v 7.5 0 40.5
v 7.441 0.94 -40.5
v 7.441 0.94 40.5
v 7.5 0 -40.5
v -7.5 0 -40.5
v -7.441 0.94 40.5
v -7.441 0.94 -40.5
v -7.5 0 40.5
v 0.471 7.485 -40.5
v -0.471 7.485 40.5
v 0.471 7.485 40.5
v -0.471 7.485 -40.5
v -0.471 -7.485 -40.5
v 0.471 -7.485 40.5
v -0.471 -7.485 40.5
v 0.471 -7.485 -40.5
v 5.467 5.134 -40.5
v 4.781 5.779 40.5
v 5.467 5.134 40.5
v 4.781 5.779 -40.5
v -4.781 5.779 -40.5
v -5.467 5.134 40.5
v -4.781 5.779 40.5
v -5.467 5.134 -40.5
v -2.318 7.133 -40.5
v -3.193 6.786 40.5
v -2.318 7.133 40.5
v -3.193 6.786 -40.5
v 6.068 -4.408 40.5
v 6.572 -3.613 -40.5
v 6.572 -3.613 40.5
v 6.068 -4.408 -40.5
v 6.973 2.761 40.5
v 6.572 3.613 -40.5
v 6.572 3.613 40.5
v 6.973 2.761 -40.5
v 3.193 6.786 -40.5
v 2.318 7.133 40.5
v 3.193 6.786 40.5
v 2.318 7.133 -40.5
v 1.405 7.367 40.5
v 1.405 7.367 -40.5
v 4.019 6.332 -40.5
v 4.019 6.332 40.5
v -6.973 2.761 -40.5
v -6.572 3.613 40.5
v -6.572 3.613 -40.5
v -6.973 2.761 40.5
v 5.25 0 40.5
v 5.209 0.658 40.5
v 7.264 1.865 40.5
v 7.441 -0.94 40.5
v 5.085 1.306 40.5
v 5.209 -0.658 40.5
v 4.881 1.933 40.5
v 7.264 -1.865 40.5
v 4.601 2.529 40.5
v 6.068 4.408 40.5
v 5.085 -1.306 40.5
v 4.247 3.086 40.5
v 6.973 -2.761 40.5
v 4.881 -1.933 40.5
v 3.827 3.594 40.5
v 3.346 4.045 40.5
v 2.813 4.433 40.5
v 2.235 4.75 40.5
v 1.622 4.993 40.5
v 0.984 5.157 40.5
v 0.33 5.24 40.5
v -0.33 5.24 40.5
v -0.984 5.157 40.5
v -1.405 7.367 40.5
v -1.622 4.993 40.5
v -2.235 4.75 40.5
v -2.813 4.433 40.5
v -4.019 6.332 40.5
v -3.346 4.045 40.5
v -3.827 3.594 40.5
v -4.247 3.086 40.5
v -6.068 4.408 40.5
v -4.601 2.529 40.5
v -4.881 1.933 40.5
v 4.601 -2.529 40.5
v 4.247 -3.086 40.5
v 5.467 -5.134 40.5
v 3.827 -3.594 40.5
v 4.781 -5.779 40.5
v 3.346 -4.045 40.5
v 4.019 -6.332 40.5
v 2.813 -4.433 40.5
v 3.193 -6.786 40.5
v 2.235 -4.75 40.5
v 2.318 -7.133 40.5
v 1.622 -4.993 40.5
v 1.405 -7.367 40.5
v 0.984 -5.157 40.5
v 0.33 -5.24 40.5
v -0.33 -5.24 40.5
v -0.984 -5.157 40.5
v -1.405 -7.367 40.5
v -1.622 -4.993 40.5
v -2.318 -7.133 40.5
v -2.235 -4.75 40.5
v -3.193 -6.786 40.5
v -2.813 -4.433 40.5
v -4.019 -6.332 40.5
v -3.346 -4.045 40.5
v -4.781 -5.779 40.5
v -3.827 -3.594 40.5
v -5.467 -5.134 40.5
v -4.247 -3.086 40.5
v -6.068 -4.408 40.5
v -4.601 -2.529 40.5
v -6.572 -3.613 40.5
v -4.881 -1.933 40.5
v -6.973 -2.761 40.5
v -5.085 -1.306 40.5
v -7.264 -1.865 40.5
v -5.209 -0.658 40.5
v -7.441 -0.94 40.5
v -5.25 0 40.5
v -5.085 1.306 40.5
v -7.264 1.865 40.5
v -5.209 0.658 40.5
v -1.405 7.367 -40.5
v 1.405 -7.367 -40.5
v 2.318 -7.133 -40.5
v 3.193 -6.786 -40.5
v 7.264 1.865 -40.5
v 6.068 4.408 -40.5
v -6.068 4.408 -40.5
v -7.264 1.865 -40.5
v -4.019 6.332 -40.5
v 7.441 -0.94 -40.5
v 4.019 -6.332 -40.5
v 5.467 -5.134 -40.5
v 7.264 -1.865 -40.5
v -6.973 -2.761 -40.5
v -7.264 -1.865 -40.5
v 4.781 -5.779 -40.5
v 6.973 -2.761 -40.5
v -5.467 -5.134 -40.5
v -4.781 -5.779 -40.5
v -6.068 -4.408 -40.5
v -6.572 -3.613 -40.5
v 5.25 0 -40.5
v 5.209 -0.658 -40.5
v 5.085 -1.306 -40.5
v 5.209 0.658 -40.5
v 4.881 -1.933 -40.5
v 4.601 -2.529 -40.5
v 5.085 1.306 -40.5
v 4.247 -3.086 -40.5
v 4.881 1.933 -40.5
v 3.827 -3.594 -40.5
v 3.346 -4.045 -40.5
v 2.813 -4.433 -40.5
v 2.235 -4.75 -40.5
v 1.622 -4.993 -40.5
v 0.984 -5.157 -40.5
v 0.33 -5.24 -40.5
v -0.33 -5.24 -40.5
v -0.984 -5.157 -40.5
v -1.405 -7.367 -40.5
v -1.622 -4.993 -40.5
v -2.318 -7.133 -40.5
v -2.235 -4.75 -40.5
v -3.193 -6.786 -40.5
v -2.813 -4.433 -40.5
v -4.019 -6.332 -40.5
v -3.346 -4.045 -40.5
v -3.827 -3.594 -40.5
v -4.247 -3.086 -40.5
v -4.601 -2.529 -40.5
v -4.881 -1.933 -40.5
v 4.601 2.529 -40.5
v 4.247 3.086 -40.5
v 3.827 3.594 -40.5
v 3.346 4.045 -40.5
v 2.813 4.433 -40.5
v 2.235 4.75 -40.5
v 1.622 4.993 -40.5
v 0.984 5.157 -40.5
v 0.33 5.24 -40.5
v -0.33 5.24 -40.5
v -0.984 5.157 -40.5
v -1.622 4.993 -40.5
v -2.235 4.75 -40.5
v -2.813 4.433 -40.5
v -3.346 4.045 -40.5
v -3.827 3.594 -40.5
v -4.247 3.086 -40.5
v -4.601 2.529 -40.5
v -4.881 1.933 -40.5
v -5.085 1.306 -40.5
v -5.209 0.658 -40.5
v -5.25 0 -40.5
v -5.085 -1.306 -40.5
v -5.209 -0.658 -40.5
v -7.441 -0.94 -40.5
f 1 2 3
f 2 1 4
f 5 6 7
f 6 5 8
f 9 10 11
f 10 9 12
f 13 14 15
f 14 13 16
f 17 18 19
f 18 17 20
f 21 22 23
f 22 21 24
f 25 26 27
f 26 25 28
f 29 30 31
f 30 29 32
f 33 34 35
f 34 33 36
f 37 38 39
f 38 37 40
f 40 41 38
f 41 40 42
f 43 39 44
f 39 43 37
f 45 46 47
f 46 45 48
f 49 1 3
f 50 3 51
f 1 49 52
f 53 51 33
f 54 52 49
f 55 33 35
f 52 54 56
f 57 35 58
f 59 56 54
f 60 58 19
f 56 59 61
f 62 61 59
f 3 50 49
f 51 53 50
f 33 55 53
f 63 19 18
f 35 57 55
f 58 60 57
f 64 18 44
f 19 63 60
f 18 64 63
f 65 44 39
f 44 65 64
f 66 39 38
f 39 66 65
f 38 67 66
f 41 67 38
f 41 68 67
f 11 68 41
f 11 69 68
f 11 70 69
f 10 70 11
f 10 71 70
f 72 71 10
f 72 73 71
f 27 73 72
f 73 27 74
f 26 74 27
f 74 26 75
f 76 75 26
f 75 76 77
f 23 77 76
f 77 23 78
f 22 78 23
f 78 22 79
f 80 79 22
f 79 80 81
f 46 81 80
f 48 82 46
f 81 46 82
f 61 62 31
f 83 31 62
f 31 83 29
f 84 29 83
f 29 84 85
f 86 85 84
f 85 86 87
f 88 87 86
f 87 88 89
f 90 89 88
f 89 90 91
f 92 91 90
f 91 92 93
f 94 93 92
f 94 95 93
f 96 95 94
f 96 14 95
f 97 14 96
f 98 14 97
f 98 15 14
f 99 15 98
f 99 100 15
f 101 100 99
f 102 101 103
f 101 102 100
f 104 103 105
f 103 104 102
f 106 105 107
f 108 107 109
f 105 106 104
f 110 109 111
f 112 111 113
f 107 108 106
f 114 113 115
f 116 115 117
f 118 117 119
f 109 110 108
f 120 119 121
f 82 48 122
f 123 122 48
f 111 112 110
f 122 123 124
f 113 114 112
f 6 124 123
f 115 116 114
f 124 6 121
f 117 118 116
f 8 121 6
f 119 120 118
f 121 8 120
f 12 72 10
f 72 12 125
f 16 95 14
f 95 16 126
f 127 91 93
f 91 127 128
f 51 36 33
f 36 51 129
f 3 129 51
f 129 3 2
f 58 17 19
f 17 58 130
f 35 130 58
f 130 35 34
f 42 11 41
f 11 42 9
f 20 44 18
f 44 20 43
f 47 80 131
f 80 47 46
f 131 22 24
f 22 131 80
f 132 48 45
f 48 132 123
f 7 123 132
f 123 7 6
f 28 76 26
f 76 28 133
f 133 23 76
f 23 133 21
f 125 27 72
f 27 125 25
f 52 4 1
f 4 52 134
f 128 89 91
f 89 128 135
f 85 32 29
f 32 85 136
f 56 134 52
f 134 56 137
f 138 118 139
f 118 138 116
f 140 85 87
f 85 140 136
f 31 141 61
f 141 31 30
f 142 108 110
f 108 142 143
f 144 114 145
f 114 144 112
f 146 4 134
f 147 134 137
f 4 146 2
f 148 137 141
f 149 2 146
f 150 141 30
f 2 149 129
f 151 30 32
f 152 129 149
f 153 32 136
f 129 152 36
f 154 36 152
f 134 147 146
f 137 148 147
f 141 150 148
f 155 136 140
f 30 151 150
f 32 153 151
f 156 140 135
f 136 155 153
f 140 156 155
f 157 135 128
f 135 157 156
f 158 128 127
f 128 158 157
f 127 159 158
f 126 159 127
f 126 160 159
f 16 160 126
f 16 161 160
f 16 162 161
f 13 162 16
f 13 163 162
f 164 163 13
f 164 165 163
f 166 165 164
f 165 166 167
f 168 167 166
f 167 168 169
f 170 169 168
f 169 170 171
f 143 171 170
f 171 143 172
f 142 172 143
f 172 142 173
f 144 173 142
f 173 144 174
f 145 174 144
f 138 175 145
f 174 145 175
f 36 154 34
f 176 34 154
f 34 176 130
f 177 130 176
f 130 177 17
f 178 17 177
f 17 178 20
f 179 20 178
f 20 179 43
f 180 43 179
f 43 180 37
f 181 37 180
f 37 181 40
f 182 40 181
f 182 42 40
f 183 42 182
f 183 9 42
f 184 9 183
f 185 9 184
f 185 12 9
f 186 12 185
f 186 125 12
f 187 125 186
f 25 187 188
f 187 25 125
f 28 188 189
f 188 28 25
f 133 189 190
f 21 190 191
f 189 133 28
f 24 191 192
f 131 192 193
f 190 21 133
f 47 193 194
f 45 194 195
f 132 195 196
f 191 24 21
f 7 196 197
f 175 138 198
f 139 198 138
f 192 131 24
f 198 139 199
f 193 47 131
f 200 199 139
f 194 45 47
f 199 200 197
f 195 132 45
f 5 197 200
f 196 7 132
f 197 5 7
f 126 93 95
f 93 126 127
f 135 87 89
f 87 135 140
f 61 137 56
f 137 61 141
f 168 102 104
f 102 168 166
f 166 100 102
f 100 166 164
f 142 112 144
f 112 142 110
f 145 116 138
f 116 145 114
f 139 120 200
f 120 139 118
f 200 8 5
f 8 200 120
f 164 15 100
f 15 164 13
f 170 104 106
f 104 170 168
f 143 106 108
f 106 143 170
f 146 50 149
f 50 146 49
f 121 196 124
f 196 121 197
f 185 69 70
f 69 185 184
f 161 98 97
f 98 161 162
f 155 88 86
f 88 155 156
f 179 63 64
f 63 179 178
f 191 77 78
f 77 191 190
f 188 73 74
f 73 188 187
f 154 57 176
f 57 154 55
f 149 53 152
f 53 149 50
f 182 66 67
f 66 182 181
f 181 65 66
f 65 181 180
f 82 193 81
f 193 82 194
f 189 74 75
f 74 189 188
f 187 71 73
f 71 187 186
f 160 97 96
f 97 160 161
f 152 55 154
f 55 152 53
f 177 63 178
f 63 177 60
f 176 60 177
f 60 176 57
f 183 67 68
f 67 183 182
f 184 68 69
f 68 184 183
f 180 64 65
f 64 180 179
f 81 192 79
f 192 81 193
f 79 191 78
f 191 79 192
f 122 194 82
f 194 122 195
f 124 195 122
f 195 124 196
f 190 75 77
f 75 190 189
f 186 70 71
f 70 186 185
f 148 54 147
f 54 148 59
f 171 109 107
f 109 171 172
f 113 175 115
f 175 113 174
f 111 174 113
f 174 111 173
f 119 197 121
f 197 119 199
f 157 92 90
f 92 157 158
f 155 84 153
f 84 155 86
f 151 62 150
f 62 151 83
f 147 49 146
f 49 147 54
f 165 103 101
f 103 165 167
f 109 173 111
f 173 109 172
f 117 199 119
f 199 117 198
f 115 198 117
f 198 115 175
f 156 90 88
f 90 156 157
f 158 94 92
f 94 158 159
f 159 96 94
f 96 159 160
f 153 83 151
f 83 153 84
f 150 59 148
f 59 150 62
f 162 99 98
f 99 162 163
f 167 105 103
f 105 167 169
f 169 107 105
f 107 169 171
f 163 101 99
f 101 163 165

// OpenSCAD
$fn = 50;


difference() {
	union() {
		translate(v = [0, 0, -40.5000000000]) {
			cylinder(h = 81, r = 7.5000000000);
		}
	}
	union() {
		translate(v = [0, 0, -100.0000000000]) {
			cylinder(h = 200, r = 5.2500000000);
		}
	}
}
